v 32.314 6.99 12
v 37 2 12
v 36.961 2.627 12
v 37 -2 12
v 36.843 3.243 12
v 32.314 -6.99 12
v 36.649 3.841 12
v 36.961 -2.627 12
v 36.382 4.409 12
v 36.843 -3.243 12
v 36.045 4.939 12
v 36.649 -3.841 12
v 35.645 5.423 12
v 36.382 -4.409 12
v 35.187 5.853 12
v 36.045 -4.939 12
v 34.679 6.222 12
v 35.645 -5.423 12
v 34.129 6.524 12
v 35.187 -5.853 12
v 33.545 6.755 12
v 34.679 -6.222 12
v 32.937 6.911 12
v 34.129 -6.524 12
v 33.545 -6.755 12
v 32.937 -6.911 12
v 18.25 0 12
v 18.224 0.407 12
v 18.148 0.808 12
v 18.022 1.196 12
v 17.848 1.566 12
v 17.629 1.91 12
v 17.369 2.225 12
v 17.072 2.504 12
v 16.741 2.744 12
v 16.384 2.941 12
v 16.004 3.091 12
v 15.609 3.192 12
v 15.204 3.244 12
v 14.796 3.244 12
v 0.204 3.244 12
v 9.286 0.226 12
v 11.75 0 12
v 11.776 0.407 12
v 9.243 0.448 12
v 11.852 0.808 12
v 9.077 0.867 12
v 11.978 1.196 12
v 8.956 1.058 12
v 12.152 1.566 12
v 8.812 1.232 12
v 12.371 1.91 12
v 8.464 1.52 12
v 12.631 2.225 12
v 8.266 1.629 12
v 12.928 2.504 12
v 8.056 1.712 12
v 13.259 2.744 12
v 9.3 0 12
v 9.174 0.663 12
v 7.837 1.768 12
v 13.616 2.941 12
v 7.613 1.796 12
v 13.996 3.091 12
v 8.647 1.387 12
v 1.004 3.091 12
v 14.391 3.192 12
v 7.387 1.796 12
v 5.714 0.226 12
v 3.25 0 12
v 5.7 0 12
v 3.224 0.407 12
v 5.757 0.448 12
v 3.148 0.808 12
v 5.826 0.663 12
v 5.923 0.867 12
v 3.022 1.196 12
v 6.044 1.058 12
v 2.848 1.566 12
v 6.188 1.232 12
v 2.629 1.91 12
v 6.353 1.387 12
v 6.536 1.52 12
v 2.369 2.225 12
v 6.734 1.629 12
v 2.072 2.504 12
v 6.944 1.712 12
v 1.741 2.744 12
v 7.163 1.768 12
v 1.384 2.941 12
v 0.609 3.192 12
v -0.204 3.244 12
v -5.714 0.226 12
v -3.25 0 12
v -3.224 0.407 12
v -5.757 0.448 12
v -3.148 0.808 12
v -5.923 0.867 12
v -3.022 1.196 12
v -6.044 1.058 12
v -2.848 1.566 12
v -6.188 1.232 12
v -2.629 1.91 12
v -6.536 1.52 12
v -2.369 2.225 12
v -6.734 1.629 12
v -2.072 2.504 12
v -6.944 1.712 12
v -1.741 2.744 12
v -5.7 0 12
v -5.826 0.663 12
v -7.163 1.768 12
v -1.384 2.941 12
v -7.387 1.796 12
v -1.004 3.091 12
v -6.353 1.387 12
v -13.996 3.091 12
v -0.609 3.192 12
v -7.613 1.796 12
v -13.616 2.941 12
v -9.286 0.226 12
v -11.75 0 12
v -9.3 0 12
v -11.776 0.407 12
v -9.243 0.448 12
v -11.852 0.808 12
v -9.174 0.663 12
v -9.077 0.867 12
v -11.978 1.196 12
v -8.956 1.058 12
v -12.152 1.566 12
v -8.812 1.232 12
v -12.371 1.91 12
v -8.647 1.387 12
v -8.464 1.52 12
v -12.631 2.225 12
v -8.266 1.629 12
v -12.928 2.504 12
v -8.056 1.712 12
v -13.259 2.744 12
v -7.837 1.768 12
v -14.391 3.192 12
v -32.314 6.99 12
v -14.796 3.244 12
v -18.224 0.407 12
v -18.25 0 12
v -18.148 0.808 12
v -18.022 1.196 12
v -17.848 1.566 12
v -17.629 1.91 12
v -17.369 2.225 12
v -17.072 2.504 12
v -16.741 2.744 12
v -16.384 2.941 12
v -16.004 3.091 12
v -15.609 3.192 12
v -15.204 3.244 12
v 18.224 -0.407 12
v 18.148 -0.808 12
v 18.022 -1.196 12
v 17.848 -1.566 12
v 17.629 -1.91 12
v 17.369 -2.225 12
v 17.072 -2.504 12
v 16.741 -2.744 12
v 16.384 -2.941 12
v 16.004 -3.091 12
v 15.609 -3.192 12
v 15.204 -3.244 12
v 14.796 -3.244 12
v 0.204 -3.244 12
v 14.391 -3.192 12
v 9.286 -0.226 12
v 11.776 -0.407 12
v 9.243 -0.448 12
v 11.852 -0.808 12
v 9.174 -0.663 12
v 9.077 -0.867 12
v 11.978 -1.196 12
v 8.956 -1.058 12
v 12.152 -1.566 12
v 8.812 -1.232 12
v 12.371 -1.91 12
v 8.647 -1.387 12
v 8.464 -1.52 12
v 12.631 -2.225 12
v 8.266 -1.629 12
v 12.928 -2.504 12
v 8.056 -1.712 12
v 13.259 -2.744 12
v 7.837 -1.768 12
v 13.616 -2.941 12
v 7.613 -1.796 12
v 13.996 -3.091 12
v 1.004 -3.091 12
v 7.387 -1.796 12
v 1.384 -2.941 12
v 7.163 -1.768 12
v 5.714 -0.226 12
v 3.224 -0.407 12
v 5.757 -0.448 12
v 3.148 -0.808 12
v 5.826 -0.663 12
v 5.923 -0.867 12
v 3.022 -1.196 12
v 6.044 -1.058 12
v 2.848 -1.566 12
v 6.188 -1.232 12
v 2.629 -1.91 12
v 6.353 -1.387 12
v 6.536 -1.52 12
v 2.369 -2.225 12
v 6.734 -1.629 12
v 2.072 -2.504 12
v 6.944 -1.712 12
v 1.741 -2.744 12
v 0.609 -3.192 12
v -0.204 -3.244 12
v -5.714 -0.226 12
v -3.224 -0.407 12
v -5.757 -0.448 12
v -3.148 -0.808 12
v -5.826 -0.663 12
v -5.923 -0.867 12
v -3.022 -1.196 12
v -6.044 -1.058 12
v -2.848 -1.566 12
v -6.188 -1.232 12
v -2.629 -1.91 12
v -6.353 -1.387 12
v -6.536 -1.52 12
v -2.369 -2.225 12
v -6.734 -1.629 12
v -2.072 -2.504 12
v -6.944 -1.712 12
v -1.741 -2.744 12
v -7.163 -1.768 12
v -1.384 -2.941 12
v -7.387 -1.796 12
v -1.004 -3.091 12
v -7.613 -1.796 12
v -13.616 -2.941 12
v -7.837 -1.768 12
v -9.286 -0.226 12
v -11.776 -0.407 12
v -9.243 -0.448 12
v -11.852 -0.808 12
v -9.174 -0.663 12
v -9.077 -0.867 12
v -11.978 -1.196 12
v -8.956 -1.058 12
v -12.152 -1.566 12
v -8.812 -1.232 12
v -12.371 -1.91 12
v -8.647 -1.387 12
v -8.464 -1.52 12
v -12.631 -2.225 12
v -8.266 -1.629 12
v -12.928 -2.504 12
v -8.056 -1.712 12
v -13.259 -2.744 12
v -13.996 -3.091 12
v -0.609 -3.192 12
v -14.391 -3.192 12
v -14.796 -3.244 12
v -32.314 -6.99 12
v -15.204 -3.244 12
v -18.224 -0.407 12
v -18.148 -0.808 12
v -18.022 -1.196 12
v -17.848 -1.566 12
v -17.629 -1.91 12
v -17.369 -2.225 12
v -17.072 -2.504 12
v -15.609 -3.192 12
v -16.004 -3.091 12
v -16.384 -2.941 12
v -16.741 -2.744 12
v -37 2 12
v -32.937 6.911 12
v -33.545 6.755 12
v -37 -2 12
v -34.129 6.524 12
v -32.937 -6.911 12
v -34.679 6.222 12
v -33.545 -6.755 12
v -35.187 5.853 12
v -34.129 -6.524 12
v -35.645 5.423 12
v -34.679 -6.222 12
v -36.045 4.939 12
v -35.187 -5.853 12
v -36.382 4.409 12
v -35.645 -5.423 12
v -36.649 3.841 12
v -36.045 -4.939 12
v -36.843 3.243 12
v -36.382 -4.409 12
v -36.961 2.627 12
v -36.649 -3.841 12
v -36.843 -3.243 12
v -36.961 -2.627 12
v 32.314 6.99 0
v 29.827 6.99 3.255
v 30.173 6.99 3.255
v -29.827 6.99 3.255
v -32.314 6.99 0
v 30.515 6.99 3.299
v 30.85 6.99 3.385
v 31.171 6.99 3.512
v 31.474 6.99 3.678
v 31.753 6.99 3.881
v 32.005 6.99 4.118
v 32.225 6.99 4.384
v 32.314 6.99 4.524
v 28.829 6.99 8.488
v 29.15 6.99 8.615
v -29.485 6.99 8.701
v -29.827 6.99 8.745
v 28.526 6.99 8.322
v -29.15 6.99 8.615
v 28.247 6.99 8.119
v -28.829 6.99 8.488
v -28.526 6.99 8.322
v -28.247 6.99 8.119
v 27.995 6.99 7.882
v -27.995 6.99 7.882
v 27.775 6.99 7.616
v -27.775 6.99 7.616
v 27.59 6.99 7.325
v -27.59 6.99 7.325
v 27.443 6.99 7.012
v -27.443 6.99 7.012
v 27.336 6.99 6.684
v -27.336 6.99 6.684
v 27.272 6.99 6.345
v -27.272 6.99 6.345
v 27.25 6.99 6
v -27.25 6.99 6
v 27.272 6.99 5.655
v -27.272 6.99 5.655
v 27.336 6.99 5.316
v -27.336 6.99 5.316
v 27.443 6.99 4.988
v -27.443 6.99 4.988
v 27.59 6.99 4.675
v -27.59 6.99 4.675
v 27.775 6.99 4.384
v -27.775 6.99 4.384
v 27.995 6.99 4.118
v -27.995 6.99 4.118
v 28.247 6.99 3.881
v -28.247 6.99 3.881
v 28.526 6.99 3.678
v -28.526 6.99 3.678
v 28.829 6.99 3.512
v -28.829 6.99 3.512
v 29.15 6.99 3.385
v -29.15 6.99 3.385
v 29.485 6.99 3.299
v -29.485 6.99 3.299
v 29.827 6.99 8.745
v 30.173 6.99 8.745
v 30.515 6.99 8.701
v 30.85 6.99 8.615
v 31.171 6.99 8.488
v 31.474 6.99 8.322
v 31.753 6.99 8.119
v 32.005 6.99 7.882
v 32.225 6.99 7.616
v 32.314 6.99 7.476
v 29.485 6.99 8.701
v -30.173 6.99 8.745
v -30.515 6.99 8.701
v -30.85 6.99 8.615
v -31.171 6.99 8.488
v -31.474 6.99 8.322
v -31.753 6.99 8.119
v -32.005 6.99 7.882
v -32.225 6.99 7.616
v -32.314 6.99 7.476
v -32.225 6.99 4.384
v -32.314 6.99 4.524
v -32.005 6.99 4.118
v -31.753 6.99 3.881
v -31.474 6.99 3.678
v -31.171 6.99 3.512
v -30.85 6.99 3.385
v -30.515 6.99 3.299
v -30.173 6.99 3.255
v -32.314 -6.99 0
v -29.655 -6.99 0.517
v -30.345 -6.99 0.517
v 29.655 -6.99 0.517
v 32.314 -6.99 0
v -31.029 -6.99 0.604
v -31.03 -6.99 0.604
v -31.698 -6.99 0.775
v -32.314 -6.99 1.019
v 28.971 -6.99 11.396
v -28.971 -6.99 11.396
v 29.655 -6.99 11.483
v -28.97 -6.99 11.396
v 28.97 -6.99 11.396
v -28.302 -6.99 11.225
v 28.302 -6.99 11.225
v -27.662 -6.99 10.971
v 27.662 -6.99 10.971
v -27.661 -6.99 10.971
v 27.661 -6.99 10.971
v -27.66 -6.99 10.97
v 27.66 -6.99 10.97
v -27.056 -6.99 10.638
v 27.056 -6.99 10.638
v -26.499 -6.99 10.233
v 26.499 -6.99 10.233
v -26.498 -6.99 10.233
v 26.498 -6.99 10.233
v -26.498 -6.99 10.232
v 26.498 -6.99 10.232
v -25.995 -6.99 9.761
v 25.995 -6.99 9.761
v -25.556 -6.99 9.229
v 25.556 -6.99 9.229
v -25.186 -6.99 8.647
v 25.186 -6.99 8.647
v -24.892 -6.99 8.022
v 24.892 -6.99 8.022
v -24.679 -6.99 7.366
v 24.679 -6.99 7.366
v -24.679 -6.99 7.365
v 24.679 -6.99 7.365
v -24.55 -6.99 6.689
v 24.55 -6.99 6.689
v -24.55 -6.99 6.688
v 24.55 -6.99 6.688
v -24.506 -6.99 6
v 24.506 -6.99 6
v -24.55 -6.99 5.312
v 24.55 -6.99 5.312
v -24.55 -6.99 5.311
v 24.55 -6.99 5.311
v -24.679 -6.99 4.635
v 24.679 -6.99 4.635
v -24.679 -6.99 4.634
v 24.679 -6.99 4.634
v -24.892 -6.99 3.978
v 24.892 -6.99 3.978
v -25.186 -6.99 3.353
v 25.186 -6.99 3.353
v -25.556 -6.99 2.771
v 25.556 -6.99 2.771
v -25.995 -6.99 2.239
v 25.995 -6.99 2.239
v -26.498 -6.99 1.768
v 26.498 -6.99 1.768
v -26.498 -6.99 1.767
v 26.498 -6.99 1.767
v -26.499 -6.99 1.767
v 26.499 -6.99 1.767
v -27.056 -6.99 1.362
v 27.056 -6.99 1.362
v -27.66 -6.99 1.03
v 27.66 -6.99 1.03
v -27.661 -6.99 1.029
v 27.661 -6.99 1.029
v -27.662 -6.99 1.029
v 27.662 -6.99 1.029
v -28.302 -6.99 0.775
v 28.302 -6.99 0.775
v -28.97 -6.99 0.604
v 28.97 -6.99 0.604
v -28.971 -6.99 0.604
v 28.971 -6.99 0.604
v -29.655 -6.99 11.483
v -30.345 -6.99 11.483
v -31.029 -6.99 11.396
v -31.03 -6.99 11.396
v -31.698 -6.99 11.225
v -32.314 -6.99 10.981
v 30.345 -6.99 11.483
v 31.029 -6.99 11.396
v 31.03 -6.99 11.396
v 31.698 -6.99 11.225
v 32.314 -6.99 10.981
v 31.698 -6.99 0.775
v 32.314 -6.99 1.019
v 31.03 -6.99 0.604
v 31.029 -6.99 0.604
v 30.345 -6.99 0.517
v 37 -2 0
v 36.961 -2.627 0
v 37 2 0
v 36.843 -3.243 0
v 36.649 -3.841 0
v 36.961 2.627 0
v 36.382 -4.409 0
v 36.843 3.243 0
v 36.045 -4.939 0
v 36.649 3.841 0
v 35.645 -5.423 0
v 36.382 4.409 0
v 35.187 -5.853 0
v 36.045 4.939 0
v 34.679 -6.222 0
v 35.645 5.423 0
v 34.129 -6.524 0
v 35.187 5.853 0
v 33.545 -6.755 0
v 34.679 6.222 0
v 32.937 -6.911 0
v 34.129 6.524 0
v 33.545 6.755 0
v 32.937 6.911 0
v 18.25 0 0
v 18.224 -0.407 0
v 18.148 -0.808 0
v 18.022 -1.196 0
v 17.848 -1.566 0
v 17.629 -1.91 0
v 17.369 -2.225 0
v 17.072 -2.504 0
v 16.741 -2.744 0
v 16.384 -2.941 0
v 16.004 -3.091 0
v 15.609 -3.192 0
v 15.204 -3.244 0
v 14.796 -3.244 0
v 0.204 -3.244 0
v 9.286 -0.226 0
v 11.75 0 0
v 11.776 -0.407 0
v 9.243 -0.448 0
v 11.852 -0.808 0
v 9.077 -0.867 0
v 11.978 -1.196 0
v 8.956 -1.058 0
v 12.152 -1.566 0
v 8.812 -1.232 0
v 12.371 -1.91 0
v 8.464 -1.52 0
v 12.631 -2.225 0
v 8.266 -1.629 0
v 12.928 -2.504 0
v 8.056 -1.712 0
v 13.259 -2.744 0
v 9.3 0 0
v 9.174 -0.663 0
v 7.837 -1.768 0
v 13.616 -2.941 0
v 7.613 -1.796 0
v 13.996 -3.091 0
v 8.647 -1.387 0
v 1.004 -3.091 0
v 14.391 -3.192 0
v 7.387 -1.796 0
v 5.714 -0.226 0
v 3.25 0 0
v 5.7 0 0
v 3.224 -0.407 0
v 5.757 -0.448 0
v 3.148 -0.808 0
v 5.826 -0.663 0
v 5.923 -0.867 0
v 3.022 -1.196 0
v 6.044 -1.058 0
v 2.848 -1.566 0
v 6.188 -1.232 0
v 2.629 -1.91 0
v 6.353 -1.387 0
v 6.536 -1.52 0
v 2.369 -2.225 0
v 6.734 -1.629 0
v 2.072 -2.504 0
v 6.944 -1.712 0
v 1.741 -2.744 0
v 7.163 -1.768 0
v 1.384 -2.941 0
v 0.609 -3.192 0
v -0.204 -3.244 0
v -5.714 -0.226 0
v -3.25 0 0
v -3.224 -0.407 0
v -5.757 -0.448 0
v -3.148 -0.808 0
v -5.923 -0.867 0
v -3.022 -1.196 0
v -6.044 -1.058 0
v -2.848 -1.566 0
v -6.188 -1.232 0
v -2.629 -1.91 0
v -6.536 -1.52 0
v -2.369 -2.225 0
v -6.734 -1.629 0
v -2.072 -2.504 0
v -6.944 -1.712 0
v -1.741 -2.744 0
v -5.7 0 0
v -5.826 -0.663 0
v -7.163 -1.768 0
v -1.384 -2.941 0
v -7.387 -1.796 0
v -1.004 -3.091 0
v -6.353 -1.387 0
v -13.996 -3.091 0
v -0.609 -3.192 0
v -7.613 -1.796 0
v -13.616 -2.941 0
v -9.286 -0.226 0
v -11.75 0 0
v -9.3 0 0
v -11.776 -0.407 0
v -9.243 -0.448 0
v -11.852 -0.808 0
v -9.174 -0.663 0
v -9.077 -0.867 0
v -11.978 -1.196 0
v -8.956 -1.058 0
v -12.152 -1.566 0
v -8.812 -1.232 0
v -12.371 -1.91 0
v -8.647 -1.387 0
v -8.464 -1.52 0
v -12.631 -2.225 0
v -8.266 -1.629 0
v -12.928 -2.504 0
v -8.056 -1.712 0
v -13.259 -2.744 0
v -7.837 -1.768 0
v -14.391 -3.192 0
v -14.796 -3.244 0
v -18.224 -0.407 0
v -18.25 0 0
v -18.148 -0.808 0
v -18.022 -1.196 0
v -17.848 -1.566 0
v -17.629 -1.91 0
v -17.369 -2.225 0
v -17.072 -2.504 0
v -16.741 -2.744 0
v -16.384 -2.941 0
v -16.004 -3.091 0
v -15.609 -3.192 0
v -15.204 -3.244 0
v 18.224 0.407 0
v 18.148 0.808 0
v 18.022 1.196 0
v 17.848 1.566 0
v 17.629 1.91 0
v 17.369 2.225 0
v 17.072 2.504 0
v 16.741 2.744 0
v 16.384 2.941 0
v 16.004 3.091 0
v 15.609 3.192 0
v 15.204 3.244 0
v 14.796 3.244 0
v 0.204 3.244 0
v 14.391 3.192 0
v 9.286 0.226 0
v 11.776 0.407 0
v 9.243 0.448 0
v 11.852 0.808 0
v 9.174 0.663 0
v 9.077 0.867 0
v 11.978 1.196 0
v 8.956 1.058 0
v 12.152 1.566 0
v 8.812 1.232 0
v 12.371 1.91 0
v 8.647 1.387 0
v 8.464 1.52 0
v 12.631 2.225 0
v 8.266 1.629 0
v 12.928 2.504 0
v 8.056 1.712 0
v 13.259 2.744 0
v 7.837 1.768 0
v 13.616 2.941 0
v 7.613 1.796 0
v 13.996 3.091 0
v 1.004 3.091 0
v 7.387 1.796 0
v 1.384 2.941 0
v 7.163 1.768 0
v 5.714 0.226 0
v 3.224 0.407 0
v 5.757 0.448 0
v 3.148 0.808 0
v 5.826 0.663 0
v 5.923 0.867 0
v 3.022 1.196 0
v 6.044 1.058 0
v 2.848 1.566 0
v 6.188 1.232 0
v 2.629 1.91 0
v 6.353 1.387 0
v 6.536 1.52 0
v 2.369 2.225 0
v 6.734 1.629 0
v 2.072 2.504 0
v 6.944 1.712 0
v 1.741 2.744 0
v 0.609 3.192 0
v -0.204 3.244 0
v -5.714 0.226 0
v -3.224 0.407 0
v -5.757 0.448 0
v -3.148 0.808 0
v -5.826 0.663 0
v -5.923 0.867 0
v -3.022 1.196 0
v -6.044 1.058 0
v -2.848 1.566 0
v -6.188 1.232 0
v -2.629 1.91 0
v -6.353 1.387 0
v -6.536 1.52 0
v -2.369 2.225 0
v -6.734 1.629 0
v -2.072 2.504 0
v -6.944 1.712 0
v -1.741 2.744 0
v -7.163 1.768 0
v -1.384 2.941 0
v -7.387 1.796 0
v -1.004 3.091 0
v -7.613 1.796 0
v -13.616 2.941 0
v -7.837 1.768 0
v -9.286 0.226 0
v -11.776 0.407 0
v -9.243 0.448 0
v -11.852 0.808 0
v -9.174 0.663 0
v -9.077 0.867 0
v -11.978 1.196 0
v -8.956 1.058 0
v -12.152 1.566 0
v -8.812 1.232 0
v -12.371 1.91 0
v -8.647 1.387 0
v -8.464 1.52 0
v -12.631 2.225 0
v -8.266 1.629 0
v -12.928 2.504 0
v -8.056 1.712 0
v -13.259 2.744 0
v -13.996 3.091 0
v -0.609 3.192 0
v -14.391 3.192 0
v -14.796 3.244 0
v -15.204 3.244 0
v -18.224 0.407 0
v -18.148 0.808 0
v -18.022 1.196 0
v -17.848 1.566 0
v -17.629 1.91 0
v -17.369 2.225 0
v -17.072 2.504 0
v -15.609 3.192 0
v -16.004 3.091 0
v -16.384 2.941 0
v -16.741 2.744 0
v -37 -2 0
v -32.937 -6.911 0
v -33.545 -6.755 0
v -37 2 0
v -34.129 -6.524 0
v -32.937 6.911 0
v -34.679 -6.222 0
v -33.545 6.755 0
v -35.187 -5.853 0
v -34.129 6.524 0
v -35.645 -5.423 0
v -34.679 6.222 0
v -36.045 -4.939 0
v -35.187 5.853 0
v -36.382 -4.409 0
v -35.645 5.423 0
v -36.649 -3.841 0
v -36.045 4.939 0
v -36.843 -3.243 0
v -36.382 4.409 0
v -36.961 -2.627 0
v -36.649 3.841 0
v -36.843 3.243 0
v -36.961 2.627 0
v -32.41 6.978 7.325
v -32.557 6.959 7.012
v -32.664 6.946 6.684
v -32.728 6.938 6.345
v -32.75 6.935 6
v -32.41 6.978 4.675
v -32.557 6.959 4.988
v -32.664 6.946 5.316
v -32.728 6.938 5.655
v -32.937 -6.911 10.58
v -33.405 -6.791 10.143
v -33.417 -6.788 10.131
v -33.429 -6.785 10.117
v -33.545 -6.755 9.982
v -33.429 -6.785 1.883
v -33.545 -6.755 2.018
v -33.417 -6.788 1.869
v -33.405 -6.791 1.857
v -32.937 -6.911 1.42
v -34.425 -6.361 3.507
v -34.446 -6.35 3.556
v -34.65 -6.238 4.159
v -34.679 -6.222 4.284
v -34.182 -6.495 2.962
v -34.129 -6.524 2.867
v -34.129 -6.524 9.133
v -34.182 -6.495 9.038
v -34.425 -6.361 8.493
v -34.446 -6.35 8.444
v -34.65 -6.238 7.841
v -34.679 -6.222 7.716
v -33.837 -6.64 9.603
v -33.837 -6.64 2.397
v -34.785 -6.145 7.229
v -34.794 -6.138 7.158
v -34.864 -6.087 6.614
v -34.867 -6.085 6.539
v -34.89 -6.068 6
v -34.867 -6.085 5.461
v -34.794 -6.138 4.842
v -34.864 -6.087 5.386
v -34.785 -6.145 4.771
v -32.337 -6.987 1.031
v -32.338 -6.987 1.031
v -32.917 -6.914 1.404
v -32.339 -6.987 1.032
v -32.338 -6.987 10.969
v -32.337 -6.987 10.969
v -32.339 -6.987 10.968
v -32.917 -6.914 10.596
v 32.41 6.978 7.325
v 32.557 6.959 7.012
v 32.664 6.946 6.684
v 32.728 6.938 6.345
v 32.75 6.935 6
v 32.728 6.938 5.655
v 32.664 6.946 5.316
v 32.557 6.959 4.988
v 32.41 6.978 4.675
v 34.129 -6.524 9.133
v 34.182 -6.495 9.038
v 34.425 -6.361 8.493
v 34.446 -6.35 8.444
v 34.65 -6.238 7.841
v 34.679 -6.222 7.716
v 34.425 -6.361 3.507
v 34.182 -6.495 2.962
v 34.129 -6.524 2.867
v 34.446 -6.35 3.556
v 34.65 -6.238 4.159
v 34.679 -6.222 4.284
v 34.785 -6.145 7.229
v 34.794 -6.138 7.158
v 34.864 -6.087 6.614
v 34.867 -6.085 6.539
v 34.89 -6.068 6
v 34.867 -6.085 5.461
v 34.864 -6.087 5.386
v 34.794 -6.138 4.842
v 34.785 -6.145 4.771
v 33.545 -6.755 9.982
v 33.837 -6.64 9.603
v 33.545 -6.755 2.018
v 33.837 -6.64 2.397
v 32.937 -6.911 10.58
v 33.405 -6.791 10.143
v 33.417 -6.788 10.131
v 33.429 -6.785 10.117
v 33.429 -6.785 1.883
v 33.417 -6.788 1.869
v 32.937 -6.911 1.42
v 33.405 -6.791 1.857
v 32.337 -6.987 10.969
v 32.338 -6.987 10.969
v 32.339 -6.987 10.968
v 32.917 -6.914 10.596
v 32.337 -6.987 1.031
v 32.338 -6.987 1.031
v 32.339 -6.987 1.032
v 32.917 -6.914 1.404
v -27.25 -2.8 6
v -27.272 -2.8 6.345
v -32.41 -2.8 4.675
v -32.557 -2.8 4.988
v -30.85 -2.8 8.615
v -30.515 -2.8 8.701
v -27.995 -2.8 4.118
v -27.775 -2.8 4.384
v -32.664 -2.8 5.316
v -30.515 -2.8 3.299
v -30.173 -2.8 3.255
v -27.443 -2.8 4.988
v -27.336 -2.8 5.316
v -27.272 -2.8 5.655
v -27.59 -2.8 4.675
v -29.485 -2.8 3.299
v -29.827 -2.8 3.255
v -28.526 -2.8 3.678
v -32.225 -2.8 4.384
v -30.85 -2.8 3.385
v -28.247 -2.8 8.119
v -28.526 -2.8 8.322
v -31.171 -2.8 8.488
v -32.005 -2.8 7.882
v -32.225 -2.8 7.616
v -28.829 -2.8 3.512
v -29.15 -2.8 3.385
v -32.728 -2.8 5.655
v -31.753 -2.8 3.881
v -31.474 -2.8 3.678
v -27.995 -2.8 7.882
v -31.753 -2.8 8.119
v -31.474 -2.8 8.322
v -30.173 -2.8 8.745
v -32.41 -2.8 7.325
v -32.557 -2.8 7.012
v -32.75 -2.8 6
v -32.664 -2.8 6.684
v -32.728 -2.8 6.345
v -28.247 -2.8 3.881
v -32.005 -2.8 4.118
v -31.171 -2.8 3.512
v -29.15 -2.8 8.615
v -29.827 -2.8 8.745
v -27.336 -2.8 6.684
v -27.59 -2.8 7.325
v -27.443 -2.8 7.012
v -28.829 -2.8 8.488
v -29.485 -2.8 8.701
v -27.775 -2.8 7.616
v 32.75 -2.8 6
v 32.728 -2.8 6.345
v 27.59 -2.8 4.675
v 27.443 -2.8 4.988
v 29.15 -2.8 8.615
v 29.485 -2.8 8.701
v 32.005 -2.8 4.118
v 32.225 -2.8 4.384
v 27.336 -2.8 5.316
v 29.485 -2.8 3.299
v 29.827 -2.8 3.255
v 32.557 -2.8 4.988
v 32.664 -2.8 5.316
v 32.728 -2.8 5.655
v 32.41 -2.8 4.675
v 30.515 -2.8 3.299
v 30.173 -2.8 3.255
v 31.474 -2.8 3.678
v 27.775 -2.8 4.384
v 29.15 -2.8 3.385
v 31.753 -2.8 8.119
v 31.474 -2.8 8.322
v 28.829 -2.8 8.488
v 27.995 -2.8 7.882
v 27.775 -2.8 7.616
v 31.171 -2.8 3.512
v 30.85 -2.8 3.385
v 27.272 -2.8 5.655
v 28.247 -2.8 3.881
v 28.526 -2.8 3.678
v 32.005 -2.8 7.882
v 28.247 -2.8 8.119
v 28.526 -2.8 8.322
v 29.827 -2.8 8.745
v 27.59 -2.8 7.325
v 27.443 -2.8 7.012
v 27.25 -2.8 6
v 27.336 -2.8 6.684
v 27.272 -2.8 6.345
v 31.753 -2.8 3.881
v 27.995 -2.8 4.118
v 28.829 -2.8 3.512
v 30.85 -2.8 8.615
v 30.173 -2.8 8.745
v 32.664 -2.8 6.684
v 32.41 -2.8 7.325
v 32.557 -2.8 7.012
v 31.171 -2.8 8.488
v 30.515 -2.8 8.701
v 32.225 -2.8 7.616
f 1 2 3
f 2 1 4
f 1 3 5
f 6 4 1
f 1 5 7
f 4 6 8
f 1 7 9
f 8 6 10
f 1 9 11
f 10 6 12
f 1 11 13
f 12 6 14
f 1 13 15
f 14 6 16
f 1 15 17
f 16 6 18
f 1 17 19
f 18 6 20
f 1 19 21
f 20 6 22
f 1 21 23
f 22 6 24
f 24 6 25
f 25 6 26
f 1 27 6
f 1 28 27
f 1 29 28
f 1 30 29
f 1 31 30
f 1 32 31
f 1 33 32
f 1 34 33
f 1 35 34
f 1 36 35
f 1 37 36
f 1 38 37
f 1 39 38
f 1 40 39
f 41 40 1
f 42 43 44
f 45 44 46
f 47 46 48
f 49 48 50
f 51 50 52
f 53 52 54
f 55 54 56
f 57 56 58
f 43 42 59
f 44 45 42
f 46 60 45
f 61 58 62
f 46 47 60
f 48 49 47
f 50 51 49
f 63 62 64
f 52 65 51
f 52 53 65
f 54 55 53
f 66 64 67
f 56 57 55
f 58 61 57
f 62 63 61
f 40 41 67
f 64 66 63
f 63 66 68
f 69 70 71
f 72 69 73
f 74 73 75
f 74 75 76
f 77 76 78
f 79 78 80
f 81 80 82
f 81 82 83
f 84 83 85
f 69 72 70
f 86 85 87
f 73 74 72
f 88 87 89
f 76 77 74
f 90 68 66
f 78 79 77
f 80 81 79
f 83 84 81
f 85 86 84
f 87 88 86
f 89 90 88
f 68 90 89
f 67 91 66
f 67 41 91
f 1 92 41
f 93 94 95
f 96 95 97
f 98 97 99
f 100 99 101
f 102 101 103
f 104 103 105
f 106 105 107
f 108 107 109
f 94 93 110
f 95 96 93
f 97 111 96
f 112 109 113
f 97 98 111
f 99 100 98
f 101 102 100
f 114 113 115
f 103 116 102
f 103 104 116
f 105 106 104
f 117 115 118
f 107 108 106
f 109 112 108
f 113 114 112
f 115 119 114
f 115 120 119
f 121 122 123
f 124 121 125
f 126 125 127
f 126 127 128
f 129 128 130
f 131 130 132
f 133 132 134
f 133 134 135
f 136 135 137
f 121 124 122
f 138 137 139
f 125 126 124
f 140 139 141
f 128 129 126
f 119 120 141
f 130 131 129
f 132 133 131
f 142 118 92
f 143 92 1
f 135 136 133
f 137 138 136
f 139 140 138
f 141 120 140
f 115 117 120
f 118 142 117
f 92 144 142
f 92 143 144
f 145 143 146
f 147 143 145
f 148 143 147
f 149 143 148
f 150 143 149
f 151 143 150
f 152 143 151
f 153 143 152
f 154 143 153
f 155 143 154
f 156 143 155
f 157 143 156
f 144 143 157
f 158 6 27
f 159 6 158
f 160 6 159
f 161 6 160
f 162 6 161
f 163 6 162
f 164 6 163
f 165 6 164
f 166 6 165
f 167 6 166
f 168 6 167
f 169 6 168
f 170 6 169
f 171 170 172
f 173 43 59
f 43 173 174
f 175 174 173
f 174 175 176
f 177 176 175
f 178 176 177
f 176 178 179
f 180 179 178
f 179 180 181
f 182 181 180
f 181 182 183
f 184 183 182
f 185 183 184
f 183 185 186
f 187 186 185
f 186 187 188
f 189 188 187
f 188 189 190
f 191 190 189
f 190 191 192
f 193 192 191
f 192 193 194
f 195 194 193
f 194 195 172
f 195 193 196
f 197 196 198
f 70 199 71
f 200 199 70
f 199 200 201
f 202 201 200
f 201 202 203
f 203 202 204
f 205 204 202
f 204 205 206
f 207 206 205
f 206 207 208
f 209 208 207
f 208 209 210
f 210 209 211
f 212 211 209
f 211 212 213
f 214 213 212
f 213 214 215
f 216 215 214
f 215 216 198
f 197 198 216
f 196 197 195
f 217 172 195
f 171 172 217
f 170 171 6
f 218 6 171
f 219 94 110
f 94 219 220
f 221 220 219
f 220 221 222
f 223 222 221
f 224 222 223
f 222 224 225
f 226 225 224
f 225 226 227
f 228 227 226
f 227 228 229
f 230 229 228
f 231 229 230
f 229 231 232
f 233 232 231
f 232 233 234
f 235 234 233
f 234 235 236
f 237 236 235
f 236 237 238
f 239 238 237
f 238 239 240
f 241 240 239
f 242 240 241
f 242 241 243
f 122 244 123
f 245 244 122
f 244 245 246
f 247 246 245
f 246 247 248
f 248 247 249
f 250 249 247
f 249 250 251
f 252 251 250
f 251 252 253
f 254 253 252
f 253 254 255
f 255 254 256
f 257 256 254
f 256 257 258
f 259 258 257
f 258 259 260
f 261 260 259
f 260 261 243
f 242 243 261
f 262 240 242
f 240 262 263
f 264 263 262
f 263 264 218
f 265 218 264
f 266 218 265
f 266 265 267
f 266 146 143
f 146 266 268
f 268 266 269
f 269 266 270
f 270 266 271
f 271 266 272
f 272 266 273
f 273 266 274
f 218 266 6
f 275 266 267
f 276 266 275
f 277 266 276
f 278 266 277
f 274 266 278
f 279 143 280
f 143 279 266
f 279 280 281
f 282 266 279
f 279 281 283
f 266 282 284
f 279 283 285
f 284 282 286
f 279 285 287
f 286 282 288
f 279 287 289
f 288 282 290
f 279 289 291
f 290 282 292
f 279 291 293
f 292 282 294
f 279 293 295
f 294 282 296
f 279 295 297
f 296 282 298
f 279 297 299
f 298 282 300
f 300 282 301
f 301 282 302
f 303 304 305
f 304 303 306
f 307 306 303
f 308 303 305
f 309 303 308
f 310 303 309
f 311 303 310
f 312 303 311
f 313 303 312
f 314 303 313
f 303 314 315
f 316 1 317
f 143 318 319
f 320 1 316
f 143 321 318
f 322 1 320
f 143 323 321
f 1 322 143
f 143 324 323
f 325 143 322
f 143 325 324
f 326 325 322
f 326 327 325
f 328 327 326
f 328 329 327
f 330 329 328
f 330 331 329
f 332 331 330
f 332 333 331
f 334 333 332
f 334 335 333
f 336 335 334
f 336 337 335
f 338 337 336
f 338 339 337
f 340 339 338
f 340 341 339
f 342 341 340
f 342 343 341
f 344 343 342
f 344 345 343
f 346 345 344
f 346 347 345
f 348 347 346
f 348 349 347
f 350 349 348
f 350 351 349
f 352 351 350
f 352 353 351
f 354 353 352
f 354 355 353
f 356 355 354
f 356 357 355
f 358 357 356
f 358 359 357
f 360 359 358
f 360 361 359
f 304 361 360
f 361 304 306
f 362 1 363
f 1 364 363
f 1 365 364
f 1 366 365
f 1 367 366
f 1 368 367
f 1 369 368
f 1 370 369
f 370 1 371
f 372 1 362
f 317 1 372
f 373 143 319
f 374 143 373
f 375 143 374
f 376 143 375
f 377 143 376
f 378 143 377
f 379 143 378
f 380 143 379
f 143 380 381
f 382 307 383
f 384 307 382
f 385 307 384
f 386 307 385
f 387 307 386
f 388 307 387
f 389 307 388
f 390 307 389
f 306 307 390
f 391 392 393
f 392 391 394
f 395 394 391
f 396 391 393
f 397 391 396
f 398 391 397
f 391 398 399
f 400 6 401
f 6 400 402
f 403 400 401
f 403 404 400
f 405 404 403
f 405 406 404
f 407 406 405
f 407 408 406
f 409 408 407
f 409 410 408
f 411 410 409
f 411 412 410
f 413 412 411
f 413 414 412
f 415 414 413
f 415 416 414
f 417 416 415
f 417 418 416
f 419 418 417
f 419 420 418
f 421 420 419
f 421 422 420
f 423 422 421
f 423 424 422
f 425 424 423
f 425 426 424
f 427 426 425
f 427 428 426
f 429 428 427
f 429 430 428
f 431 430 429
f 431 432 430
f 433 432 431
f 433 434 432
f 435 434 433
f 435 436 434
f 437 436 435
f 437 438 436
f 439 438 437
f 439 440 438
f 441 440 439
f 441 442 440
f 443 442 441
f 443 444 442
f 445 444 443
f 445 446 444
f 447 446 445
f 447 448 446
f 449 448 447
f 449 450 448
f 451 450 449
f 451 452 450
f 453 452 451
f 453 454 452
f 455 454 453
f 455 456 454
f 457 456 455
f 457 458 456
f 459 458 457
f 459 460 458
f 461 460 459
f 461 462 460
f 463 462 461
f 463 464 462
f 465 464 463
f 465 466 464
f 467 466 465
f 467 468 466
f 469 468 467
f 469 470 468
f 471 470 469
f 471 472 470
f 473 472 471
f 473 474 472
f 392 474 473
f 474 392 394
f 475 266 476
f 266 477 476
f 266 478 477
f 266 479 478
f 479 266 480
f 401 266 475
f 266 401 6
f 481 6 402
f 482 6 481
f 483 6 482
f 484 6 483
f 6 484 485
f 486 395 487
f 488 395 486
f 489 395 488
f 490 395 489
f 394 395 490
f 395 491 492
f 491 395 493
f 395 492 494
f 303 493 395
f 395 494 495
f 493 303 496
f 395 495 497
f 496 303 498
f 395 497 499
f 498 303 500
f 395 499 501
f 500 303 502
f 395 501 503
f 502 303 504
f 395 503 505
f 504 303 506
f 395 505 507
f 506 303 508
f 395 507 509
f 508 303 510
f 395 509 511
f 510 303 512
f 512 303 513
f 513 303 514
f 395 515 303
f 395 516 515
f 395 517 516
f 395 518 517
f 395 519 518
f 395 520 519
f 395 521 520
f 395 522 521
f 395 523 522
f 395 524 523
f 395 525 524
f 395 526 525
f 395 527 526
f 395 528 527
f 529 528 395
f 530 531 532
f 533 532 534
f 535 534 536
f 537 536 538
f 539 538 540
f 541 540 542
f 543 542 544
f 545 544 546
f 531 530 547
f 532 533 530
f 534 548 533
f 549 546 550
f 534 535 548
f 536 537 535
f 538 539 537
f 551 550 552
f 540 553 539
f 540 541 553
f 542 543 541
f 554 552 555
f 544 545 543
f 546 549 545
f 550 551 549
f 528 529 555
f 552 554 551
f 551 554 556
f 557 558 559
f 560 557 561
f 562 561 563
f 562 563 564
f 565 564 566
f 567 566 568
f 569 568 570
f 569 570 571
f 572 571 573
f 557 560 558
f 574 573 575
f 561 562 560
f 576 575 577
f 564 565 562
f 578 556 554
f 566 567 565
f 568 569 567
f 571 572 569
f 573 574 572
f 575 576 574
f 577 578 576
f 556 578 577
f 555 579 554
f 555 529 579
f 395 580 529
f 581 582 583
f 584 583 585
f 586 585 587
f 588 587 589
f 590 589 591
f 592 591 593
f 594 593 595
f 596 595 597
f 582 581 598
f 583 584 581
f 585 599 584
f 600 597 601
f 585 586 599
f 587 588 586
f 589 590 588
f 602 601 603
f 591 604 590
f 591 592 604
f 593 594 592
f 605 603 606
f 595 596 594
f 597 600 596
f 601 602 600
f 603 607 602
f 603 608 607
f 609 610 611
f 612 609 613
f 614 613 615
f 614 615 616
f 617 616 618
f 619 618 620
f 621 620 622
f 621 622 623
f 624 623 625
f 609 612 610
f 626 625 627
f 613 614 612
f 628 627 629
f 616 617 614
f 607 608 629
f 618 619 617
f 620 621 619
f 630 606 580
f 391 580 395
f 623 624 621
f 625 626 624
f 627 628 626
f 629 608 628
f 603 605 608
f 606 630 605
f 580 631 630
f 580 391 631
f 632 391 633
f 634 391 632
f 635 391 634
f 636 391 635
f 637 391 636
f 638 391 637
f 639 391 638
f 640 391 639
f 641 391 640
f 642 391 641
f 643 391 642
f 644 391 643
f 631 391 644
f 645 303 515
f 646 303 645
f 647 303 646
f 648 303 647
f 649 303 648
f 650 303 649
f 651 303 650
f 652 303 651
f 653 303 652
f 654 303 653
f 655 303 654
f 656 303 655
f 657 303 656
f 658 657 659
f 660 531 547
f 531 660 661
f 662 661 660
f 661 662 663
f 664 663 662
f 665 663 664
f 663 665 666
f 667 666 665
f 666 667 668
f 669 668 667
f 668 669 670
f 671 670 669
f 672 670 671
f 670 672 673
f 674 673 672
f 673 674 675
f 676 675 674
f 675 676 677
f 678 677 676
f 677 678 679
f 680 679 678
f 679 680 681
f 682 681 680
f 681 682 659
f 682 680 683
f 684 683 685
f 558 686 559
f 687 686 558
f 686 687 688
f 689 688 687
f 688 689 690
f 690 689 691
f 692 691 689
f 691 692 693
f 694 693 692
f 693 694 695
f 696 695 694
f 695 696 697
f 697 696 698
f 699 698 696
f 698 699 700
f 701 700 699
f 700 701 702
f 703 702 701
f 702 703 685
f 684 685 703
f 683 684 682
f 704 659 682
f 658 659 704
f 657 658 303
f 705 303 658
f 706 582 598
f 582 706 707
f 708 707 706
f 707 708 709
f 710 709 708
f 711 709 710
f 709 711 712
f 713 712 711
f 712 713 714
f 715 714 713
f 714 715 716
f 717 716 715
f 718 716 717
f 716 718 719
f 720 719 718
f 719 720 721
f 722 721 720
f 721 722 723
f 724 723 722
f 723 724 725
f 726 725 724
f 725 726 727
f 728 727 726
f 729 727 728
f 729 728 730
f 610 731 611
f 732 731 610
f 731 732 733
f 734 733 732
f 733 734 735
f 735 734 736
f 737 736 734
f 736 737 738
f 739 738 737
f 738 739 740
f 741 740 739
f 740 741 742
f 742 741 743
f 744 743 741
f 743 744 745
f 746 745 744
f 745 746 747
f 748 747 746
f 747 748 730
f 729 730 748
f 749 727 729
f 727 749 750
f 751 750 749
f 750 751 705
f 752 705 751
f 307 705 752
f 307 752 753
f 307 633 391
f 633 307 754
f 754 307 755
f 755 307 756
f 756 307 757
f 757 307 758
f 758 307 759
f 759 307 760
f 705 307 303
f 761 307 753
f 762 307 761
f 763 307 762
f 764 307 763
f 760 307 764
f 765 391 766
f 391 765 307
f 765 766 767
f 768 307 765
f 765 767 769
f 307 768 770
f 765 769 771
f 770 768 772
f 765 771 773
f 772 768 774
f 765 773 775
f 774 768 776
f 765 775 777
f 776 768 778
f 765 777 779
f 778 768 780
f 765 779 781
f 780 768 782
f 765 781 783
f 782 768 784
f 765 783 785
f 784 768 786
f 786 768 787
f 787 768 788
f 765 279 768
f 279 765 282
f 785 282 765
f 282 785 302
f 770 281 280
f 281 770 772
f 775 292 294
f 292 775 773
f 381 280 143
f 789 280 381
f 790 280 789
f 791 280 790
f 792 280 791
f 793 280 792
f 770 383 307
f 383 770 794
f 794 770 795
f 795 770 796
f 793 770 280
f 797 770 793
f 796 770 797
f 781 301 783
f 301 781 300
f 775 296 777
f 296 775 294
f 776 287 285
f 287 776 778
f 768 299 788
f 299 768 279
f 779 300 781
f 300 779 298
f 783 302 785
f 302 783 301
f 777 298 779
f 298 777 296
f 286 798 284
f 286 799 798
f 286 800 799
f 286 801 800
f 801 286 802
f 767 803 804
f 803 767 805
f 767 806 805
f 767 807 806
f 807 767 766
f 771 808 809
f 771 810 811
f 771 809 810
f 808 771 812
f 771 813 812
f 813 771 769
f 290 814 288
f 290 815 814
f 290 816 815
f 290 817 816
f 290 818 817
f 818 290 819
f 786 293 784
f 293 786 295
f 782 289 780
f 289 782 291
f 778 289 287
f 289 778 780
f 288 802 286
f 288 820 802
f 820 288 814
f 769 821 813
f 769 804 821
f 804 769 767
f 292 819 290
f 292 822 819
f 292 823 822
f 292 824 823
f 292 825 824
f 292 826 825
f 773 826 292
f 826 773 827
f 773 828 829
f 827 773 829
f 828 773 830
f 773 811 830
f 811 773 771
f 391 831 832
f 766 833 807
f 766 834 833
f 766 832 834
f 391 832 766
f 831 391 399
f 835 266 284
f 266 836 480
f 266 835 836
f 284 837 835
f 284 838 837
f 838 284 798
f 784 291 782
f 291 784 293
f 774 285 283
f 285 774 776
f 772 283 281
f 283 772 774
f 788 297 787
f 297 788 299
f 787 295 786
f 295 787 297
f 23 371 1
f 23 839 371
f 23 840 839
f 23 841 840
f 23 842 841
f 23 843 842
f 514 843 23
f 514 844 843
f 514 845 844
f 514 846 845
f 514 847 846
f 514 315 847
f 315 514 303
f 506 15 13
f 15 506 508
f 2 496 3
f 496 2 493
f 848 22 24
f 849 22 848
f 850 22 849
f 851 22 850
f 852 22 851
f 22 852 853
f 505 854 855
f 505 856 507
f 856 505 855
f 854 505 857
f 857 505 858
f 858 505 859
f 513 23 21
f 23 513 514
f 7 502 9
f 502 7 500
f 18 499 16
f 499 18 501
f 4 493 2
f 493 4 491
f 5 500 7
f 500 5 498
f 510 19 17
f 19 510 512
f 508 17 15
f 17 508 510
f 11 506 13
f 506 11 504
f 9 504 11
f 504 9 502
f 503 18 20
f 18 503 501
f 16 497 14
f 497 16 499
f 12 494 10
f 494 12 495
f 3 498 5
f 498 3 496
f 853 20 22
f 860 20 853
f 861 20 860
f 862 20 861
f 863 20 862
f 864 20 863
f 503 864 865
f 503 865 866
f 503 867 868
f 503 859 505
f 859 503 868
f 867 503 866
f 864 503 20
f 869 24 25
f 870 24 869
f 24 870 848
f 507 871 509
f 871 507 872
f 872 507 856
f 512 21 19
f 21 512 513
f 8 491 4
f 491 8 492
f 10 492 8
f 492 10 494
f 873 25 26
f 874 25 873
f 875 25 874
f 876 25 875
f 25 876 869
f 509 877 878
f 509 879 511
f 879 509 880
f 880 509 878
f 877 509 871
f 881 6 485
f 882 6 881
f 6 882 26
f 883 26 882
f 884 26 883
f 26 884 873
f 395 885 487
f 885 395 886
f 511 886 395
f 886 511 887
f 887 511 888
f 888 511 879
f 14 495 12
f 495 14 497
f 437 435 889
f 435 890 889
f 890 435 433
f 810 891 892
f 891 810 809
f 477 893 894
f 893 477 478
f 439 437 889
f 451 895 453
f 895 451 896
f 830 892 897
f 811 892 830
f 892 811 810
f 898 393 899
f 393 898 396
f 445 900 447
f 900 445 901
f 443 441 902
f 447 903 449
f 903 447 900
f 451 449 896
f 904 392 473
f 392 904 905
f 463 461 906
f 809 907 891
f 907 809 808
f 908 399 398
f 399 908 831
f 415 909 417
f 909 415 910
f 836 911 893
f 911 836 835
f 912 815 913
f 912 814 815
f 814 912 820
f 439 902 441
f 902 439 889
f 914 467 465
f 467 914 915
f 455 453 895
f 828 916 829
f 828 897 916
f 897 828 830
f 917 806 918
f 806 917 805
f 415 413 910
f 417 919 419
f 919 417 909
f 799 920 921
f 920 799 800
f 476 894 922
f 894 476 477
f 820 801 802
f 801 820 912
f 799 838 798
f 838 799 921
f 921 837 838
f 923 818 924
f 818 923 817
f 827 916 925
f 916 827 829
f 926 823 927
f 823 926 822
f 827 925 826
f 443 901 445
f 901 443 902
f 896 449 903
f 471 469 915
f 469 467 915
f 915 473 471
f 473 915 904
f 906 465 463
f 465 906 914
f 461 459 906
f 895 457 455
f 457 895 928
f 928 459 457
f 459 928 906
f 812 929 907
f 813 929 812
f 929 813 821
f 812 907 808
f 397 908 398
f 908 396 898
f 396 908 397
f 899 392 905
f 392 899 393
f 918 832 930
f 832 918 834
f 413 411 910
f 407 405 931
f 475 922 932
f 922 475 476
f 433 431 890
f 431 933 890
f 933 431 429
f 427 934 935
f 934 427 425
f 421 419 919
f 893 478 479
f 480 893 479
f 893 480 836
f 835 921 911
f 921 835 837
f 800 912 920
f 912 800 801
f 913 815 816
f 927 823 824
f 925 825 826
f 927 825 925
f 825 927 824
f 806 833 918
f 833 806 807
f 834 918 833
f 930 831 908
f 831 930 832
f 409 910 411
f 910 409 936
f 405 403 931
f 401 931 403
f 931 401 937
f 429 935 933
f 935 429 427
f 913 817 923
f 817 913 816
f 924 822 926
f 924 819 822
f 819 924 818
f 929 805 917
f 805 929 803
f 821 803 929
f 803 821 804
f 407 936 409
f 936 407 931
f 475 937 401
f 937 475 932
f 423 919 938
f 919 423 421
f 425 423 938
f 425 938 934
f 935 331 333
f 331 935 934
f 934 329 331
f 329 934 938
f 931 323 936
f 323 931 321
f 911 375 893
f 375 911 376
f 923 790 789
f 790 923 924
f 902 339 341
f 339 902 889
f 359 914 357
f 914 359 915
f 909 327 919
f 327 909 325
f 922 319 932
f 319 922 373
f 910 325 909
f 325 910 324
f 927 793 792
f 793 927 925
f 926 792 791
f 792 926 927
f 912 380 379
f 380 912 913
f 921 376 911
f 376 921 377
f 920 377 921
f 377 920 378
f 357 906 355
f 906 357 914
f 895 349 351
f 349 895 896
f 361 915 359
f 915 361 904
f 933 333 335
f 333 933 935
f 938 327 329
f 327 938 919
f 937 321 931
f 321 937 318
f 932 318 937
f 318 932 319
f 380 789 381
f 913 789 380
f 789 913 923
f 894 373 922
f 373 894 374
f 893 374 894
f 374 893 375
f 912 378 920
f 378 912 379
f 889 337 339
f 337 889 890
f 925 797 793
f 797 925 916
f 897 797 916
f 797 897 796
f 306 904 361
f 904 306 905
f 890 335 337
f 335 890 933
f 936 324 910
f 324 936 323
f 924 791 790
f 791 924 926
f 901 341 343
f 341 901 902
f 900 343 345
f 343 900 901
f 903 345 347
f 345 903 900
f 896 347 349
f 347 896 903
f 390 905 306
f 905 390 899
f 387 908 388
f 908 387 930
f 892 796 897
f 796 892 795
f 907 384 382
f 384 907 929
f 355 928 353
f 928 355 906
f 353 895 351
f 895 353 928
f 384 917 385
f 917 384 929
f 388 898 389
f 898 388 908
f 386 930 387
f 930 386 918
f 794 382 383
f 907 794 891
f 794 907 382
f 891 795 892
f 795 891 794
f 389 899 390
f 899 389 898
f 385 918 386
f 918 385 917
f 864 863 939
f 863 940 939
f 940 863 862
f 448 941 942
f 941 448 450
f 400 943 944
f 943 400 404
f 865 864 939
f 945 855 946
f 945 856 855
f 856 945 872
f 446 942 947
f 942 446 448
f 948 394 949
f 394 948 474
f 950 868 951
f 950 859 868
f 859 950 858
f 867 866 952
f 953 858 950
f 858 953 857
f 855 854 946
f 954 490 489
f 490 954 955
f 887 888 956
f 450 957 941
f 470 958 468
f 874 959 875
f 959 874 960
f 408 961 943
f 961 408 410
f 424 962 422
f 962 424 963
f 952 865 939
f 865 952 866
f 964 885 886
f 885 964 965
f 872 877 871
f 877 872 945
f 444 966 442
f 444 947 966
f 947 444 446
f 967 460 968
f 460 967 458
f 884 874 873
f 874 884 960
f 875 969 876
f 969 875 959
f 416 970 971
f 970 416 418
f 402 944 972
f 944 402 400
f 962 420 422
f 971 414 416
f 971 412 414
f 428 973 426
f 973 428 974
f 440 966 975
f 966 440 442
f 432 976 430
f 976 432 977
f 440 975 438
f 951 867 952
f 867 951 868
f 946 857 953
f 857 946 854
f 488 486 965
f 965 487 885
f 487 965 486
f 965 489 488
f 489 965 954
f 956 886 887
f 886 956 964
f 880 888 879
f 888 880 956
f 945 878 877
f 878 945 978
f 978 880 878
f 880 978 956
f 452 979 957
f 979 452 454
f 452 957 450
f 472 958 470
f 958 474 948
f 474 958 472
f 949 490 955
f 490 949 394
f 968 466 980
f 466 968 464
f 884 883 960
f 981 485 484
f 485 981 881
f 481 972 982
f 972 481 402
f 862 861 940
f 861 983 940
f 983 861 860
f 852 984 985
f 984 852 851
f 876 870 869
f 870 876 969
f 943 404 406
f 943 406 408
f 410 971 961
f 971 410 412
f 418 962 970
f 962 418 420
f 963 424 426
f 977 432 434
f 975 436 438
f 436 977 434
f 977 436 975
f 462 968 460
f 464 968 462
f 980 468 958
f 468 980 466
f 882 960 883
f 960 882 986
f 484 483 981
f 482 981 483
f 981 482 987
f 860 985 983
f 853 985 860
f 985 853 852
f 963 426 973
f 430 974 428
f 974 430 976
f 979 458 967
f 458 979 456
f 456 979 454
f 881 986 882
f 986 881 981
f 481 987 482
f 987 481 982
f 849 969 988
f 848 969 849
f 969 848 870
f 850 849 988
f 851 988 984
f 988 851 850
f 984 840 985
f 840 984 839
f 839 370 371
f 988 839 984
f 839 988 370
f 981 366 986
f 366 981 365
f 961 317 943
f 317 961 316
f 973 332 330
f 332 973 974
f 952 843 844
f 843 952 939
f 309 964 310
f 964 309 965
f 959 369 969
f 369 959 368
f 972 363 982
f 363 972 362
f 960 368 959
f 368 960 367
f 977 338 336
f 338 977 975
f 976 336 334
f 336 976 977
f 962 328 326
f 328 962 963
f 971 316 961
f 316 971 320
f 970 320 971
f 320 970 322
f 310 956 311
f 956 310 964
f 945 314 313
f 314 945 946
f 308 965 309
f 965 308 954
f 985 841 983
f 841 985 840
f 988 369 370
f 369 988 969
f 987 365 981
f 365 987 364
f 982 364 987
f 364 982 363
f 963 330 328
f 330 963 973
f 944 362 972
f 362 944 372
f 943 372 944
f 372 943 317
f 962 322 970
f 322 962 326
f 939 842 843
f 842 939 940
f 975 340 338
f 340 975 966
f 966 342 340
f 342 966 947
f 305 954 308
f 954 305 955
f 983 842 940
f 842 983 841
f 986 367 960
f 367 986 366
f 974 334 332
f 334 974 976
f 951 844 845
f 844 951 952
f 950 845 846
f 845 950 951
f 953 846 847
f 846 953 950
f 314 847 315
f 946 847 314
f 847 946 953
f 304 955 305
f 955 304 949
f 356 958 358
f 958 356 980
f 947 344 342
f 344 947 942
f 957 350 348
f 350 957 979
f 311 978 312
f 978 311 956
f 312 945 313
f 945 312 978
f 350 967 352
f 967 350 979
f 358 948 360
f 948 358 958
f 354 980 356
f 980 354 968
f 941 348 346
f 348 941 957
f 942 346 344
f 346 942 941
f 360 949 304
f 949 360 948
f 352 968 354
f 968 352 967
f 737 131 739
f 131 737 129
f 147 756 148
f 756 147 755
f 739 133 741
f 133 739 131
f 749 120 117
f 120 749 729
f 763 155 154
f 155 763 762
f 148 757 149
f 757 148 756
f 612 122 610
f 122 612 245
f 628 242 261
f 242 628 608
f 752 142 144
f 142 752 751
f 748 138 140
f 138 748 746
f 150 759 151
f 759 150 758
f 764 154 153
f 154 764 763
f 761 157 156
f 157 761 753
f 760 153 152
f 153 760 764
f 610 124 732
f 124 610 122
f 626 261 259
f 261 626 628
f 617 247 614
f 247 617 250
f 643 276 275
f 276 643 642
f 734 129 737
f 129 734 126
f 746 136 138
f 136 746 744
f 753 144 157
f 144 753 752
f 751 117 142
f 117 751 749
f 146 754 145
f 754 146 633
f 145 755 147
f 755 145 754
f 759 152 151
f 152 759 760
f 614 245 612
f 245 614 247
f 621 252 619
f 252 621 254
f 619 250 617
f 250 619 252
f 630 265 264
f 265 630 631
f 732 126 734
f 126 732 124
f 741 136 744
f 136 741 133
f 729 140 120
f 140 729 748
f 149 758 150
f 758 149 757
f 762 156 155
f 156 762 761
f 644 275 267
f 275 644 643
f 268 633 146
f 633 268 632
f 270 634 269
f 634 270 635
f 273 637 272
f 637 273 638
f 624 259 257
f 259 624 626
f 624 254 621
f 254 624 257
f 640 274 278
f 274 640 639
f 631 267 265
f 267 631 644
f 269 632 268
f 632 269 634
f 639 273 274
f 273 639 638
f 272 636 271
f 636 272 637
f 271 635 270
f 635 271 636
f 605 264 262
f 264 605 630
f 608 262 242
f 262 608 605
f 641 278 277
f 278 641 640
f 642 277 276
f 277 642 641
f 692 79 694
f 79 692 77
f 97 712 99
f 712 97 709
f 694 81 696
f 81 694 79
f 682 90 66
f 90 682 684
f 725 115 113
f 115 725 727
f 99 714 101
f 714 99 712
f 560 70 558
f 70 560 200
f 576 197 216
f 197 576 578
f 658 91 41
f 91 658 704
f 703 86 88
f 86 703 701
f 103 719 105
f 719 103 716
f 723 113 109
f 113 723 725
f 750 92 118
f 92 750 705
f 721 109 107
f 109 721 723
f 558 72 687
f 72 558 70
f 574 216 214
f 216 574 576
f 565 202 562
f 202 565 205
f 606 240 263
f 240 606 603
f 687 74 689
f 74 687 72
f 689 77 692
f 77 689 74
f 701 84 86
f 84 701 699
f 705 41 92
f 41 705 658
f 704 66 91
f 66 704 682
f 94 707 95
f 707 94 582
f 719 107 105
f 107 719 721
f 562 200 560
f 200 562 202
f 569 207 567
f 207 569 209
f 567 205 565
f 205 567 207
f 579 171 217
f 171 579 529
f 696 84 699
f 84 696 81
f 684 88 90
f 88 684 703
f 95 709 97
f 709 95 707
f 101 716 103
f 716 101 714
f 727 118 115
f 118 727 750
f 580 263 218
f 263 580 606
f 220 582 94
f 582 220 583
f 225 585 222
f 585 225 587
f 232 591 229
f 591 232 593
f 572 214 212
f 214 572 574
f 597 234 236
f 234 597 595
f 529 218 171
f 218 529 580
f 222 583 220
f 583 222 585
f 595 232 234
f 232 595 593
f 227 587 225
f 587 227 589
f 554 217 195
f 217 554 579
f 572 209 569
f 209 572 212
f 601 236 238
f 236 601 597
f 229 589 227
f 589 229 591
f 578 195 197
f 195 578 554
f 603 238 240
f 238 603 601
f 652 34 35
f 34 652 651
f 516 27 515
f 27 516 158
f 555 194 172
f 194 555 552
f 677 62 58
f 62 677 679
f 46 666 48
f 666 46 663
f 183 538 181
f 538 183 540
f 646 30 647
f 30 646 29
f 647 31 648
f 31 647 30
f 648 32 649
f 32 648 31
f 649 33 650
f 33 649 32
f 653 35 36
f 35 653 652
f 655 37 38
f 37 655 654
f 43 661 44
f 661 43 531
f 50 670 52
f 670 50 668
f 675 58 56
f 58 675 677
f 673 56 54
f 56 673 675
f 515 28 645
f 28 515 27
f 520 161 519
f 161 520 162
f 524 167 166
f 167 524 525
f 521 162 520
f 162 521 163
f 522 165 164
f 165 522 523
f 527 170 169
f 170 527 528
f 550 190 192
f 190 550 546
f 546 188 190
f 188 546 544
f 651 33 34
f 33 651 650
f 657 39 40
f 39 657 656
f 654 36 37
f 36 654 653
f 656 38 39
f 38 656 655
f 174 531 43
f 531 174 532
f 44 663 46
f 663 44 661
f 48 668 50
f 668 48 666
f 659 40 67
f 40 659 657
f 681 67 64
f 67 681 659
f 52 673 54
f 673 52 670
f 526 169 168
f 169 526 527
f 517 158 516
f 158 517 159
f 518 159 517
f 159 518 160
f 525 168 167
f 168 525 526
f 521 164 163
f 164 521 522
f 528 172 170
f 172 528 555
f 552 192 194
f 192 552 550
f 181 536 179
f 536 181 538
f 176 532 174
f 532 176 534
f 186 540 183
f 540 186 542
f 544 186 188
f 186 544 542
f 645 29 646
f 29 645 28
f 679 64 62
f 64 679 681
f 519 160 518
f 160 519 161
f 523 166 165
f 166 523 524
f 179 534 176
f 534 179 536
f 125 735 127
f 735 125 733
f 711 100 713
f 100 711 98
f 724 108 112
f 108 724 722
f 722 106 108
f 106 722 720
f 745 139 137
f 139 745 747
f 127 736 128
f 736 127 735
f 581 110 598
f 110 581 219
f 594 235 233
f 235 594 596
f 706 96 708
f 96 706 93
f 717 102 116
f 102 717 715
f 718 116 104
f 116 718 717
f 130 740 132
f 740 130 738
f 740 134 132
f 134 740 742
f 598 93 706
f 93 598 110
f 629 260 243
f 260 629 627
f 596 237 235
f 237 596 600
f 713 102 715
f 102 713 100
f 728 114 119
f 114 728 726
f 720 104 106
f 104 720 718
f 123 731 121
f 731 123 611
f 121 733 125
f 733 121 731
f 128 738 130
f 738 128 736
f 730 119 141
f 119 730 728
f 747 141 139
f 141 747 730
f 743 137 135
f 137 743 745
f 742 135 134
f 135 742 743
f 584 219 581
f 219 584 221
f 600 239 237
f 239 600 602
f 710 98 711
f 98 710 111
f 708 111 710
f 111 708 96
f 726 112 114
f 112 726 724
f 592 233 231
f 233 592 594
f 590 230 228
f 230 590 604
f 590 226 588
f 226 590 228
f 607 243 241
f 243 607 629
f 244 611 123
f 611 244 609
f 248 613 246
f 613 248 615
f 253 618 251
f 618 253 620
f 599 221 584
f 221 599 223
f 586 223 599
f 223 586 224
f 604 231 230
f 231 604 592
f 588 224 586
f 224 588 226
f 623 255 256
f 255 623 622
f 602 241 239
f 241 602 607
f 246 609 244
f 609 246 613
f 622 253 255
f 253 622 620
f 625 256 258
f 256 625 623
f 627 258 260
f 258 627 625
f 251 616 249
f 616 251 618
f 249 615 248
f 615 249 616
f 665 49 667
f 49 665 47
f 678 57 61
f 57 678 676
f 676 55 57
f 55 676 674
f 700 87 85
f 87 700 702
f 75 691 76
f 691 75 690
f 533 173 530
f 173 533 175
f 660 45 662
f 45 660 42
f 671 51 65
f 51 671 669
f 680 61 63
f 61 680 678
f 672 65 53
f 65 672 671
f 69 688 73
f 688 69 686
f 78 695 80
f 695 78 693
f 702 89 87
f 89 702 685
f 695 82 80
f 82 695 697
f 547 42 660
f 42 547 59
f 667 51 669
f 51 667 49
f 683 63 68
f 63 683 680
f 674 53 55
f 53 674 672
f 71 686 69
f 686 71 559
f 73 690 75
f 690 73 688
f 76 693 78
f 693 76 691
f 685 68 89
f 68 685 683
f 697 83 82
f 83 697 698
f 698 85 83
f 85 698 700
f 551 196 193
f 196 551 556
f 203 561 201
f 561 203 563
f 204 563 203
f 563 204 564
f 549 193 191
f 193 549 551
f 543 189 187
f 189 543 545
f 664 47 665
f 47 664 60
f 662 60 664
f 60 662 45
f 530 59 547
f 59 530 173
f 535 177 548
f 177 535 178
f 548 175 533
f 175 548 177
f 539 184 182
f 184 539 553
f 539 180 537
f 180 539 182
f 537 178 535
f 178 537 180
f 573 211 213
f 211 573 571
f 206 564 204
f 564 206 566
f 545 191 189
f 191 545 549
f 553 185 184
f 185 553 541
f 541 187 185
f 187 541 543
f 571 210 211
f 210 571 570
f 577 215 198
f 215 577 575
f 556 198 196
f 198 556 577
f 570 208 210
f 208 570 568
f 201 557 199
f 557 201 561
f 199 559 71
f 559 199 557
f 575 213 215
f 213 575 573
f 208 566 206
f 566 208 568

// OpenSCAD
$fn = 50;


difference() {
	union() {
		hull() {
			translate(v = [-17.0000000000, 2.0000000000, 0]) {
				cylinder(h = 12, r = 5);
			}
			translate(v = [17.0000000000, 2.0000000000, 0]) {
				cylinder(h = 12, r = 5);
			}
			translate(v = [-17.0000000000, -2.0000000000, 0]) {
				cylinder(h = 12, r = 5);
			}
			translate(v = [17.0000000000, -2.0000000000, 0]) {
				cylinder(h = 12, r = 5);
			}
		}
		translate(v = [-22.5000000000, 0.0000000000, 0]) {
			hull() {
				translate(v = [-9.5000000000, 2.0000000000, 0]) {
					cylinder(h = 12, r = 5);
				}
				translate(v = [9.5000000000, 2.0000000000, 0]) {
					cylinder(h = 12, r = 5);
				}
				translate(v = [-9.5000000000, -2.0000000000, 0]) {
					cylinder(h = 12, r = 5);
				}
				translate(v = [9.5000000000, -2.0000000000, 0]) {
					cylinder(h = 12, r = 5);
				}
			}
		}
		translate(v = [-22.5000000000, 0.0000000000, 0]) {
			hull() {
				translate(v = [-9.5000000000, 2.0000000000, 0]) {
					cylinder(h = 12, r = 5);
				}
				translate(v = [9.5000000000, 2.0000000000, 0]) {
					cylinder(h = 12, r = 5);
				}
				translate(v = [-9.5000000000, -2.0000000000, 0]) {
					cylinder(h = 12, r = 5);
				}
				translate(v = [9.5000000000, -2.0000000000, 0]) {
					cylinder(h = 12, r = 5);
				}
			}
		}
		translate(v = [22.5000000000, 0.0000000000, 0]) {
			hull() {
				translate(v = [-9.5000000000, 2.0000000000, 0]) {
					cylinder(h = 12, r = 5);
				}
				translate(v = [9.5000000000, 2.0000000000, 0]) {
					cylinder(h = 12, r = 5);
				}
				translate(v = [-9.5000000000, -2.0000000000, 0]) {
					cylinder(h = 12, r = 5);
				}
				translate(v = [9.5000000000, -2.0000000000, 0]) {
					cylinder(h = 12, r = 5);
				}
			}
		}
		translate(v = [22.5000000000, 0.0000000000, 0]) {
			hull() {
				translate(v = [-9.5000000000, 2.0000000000, 0]) {
					cylinder(h = 12, r = 5);
				}
				translate(v = [9.5000000000, 2.0000000000, 0]) {
					cylinder(h = 12, r = 5);
				}
				translate(v = [-9.5000000000, -2.0000000000, 0]) {
					cylinder(h = 12, r = 5);
				}
				translate(v = [9.5000000000, -2.0000000000, 0]) {
					cylinder(h = 12, r = 5);
				}
			}
		}
	}
	union() {
		translate(v = [-30.0000000000, -7.0000000000, 6.0000000000]) {
			rotate(a = [90, 0, 0]) {
				difference() {
					union() {
						#translate(v = [0, 0, -14.0000000000]) {
							cylinder(h = 14, r = 2.2500000000);
						}
						#translate(v = [0, 0, -4.2000000000]) {
							cylinder(h = 4.2000000000, r1 = 2.7500000000, r2 = 5.5000000000);
						}
						#translate(v = [0, 0, -14.0000000000]) {
							cylinder(h = 14, r = 2.7500000000);
						}
						#translate(v = [0, 0, -14.0000000000]) {
							cylinder(h = 14, r = 2.2500000000);
						}
					}
					union();
				}
			}
		}
		translate(v = [30.0000000000, -7.0000000000, 6.0000000000]) {
			rotate(a = [90, 0, 0]) {
				difference() {
					union() {
						#translate(v = [0, 0, -14.0000000000]) {
							cylinder(h = 14, r = 2.2500000000);
						}
						#translate(v = [0, 0, -4.2000000000]) {
							cylinder(h = 4.2000000000, r1 = 2.7500000000, r2 = 5.5000000000);
						}
						#translate(v = [0, 0, -14.0000000000]) {
							cylinder(h = 14, r = 2.7500000000);
						}
						#translate(v = [0, 0, -14.0000000000]) {
							cylinder(h = 14, r = 2.2500000000);
						}
					}
					union();
				}
			}
		}
		translate(v = [-15.0000000000, 0.0000000000, 0]) {
			translate(v = [0, 0, -100]) {
				cylinder(h = 200, r = 3.2500000000);
			}
		}
		translate(v = [0, 0, -100]) {
			cylinder(h = 200, r = 3.2500000000);
		}
		translate(v = [15.0000000000, 0.0000000000, 0]) {
			translate(v = [0, 0, -100]) {
				cylinder(h = 200, r = 3.2500000000);
			}
		}
		translate(v = [-15.0000000000, 0.0000000000, 0]) {
			translate(v = [0, 0, -100]) {
				cylinder(h = 200, r = 1.8000000000);
			}
		}
		translate(v = [-7.5000000000, 0.0000000000, 0]) {
			translate(v = [0, 0, -100]) {
				cylinder(h = 200, r = 1.8000000000);
			}
		}
		translate(v = [0, 0, -100]) {
			cylinder(h = 200, r = 1.8000000000);
		}
		translate(v = [7.5000000000, 0.0000000000, 0]) {
			translate(v = [0, 0, -100]) {
				cylinder(h = 200, r = 1.8000000000);
			}
		}
		translate(v = [15.0000000000, 0.0000000000, 0]) {
			translate(v = [0, 0, -100]) {
				cylinder(h = 200, r = 1.8000000000);
			}
		}
	}
}
